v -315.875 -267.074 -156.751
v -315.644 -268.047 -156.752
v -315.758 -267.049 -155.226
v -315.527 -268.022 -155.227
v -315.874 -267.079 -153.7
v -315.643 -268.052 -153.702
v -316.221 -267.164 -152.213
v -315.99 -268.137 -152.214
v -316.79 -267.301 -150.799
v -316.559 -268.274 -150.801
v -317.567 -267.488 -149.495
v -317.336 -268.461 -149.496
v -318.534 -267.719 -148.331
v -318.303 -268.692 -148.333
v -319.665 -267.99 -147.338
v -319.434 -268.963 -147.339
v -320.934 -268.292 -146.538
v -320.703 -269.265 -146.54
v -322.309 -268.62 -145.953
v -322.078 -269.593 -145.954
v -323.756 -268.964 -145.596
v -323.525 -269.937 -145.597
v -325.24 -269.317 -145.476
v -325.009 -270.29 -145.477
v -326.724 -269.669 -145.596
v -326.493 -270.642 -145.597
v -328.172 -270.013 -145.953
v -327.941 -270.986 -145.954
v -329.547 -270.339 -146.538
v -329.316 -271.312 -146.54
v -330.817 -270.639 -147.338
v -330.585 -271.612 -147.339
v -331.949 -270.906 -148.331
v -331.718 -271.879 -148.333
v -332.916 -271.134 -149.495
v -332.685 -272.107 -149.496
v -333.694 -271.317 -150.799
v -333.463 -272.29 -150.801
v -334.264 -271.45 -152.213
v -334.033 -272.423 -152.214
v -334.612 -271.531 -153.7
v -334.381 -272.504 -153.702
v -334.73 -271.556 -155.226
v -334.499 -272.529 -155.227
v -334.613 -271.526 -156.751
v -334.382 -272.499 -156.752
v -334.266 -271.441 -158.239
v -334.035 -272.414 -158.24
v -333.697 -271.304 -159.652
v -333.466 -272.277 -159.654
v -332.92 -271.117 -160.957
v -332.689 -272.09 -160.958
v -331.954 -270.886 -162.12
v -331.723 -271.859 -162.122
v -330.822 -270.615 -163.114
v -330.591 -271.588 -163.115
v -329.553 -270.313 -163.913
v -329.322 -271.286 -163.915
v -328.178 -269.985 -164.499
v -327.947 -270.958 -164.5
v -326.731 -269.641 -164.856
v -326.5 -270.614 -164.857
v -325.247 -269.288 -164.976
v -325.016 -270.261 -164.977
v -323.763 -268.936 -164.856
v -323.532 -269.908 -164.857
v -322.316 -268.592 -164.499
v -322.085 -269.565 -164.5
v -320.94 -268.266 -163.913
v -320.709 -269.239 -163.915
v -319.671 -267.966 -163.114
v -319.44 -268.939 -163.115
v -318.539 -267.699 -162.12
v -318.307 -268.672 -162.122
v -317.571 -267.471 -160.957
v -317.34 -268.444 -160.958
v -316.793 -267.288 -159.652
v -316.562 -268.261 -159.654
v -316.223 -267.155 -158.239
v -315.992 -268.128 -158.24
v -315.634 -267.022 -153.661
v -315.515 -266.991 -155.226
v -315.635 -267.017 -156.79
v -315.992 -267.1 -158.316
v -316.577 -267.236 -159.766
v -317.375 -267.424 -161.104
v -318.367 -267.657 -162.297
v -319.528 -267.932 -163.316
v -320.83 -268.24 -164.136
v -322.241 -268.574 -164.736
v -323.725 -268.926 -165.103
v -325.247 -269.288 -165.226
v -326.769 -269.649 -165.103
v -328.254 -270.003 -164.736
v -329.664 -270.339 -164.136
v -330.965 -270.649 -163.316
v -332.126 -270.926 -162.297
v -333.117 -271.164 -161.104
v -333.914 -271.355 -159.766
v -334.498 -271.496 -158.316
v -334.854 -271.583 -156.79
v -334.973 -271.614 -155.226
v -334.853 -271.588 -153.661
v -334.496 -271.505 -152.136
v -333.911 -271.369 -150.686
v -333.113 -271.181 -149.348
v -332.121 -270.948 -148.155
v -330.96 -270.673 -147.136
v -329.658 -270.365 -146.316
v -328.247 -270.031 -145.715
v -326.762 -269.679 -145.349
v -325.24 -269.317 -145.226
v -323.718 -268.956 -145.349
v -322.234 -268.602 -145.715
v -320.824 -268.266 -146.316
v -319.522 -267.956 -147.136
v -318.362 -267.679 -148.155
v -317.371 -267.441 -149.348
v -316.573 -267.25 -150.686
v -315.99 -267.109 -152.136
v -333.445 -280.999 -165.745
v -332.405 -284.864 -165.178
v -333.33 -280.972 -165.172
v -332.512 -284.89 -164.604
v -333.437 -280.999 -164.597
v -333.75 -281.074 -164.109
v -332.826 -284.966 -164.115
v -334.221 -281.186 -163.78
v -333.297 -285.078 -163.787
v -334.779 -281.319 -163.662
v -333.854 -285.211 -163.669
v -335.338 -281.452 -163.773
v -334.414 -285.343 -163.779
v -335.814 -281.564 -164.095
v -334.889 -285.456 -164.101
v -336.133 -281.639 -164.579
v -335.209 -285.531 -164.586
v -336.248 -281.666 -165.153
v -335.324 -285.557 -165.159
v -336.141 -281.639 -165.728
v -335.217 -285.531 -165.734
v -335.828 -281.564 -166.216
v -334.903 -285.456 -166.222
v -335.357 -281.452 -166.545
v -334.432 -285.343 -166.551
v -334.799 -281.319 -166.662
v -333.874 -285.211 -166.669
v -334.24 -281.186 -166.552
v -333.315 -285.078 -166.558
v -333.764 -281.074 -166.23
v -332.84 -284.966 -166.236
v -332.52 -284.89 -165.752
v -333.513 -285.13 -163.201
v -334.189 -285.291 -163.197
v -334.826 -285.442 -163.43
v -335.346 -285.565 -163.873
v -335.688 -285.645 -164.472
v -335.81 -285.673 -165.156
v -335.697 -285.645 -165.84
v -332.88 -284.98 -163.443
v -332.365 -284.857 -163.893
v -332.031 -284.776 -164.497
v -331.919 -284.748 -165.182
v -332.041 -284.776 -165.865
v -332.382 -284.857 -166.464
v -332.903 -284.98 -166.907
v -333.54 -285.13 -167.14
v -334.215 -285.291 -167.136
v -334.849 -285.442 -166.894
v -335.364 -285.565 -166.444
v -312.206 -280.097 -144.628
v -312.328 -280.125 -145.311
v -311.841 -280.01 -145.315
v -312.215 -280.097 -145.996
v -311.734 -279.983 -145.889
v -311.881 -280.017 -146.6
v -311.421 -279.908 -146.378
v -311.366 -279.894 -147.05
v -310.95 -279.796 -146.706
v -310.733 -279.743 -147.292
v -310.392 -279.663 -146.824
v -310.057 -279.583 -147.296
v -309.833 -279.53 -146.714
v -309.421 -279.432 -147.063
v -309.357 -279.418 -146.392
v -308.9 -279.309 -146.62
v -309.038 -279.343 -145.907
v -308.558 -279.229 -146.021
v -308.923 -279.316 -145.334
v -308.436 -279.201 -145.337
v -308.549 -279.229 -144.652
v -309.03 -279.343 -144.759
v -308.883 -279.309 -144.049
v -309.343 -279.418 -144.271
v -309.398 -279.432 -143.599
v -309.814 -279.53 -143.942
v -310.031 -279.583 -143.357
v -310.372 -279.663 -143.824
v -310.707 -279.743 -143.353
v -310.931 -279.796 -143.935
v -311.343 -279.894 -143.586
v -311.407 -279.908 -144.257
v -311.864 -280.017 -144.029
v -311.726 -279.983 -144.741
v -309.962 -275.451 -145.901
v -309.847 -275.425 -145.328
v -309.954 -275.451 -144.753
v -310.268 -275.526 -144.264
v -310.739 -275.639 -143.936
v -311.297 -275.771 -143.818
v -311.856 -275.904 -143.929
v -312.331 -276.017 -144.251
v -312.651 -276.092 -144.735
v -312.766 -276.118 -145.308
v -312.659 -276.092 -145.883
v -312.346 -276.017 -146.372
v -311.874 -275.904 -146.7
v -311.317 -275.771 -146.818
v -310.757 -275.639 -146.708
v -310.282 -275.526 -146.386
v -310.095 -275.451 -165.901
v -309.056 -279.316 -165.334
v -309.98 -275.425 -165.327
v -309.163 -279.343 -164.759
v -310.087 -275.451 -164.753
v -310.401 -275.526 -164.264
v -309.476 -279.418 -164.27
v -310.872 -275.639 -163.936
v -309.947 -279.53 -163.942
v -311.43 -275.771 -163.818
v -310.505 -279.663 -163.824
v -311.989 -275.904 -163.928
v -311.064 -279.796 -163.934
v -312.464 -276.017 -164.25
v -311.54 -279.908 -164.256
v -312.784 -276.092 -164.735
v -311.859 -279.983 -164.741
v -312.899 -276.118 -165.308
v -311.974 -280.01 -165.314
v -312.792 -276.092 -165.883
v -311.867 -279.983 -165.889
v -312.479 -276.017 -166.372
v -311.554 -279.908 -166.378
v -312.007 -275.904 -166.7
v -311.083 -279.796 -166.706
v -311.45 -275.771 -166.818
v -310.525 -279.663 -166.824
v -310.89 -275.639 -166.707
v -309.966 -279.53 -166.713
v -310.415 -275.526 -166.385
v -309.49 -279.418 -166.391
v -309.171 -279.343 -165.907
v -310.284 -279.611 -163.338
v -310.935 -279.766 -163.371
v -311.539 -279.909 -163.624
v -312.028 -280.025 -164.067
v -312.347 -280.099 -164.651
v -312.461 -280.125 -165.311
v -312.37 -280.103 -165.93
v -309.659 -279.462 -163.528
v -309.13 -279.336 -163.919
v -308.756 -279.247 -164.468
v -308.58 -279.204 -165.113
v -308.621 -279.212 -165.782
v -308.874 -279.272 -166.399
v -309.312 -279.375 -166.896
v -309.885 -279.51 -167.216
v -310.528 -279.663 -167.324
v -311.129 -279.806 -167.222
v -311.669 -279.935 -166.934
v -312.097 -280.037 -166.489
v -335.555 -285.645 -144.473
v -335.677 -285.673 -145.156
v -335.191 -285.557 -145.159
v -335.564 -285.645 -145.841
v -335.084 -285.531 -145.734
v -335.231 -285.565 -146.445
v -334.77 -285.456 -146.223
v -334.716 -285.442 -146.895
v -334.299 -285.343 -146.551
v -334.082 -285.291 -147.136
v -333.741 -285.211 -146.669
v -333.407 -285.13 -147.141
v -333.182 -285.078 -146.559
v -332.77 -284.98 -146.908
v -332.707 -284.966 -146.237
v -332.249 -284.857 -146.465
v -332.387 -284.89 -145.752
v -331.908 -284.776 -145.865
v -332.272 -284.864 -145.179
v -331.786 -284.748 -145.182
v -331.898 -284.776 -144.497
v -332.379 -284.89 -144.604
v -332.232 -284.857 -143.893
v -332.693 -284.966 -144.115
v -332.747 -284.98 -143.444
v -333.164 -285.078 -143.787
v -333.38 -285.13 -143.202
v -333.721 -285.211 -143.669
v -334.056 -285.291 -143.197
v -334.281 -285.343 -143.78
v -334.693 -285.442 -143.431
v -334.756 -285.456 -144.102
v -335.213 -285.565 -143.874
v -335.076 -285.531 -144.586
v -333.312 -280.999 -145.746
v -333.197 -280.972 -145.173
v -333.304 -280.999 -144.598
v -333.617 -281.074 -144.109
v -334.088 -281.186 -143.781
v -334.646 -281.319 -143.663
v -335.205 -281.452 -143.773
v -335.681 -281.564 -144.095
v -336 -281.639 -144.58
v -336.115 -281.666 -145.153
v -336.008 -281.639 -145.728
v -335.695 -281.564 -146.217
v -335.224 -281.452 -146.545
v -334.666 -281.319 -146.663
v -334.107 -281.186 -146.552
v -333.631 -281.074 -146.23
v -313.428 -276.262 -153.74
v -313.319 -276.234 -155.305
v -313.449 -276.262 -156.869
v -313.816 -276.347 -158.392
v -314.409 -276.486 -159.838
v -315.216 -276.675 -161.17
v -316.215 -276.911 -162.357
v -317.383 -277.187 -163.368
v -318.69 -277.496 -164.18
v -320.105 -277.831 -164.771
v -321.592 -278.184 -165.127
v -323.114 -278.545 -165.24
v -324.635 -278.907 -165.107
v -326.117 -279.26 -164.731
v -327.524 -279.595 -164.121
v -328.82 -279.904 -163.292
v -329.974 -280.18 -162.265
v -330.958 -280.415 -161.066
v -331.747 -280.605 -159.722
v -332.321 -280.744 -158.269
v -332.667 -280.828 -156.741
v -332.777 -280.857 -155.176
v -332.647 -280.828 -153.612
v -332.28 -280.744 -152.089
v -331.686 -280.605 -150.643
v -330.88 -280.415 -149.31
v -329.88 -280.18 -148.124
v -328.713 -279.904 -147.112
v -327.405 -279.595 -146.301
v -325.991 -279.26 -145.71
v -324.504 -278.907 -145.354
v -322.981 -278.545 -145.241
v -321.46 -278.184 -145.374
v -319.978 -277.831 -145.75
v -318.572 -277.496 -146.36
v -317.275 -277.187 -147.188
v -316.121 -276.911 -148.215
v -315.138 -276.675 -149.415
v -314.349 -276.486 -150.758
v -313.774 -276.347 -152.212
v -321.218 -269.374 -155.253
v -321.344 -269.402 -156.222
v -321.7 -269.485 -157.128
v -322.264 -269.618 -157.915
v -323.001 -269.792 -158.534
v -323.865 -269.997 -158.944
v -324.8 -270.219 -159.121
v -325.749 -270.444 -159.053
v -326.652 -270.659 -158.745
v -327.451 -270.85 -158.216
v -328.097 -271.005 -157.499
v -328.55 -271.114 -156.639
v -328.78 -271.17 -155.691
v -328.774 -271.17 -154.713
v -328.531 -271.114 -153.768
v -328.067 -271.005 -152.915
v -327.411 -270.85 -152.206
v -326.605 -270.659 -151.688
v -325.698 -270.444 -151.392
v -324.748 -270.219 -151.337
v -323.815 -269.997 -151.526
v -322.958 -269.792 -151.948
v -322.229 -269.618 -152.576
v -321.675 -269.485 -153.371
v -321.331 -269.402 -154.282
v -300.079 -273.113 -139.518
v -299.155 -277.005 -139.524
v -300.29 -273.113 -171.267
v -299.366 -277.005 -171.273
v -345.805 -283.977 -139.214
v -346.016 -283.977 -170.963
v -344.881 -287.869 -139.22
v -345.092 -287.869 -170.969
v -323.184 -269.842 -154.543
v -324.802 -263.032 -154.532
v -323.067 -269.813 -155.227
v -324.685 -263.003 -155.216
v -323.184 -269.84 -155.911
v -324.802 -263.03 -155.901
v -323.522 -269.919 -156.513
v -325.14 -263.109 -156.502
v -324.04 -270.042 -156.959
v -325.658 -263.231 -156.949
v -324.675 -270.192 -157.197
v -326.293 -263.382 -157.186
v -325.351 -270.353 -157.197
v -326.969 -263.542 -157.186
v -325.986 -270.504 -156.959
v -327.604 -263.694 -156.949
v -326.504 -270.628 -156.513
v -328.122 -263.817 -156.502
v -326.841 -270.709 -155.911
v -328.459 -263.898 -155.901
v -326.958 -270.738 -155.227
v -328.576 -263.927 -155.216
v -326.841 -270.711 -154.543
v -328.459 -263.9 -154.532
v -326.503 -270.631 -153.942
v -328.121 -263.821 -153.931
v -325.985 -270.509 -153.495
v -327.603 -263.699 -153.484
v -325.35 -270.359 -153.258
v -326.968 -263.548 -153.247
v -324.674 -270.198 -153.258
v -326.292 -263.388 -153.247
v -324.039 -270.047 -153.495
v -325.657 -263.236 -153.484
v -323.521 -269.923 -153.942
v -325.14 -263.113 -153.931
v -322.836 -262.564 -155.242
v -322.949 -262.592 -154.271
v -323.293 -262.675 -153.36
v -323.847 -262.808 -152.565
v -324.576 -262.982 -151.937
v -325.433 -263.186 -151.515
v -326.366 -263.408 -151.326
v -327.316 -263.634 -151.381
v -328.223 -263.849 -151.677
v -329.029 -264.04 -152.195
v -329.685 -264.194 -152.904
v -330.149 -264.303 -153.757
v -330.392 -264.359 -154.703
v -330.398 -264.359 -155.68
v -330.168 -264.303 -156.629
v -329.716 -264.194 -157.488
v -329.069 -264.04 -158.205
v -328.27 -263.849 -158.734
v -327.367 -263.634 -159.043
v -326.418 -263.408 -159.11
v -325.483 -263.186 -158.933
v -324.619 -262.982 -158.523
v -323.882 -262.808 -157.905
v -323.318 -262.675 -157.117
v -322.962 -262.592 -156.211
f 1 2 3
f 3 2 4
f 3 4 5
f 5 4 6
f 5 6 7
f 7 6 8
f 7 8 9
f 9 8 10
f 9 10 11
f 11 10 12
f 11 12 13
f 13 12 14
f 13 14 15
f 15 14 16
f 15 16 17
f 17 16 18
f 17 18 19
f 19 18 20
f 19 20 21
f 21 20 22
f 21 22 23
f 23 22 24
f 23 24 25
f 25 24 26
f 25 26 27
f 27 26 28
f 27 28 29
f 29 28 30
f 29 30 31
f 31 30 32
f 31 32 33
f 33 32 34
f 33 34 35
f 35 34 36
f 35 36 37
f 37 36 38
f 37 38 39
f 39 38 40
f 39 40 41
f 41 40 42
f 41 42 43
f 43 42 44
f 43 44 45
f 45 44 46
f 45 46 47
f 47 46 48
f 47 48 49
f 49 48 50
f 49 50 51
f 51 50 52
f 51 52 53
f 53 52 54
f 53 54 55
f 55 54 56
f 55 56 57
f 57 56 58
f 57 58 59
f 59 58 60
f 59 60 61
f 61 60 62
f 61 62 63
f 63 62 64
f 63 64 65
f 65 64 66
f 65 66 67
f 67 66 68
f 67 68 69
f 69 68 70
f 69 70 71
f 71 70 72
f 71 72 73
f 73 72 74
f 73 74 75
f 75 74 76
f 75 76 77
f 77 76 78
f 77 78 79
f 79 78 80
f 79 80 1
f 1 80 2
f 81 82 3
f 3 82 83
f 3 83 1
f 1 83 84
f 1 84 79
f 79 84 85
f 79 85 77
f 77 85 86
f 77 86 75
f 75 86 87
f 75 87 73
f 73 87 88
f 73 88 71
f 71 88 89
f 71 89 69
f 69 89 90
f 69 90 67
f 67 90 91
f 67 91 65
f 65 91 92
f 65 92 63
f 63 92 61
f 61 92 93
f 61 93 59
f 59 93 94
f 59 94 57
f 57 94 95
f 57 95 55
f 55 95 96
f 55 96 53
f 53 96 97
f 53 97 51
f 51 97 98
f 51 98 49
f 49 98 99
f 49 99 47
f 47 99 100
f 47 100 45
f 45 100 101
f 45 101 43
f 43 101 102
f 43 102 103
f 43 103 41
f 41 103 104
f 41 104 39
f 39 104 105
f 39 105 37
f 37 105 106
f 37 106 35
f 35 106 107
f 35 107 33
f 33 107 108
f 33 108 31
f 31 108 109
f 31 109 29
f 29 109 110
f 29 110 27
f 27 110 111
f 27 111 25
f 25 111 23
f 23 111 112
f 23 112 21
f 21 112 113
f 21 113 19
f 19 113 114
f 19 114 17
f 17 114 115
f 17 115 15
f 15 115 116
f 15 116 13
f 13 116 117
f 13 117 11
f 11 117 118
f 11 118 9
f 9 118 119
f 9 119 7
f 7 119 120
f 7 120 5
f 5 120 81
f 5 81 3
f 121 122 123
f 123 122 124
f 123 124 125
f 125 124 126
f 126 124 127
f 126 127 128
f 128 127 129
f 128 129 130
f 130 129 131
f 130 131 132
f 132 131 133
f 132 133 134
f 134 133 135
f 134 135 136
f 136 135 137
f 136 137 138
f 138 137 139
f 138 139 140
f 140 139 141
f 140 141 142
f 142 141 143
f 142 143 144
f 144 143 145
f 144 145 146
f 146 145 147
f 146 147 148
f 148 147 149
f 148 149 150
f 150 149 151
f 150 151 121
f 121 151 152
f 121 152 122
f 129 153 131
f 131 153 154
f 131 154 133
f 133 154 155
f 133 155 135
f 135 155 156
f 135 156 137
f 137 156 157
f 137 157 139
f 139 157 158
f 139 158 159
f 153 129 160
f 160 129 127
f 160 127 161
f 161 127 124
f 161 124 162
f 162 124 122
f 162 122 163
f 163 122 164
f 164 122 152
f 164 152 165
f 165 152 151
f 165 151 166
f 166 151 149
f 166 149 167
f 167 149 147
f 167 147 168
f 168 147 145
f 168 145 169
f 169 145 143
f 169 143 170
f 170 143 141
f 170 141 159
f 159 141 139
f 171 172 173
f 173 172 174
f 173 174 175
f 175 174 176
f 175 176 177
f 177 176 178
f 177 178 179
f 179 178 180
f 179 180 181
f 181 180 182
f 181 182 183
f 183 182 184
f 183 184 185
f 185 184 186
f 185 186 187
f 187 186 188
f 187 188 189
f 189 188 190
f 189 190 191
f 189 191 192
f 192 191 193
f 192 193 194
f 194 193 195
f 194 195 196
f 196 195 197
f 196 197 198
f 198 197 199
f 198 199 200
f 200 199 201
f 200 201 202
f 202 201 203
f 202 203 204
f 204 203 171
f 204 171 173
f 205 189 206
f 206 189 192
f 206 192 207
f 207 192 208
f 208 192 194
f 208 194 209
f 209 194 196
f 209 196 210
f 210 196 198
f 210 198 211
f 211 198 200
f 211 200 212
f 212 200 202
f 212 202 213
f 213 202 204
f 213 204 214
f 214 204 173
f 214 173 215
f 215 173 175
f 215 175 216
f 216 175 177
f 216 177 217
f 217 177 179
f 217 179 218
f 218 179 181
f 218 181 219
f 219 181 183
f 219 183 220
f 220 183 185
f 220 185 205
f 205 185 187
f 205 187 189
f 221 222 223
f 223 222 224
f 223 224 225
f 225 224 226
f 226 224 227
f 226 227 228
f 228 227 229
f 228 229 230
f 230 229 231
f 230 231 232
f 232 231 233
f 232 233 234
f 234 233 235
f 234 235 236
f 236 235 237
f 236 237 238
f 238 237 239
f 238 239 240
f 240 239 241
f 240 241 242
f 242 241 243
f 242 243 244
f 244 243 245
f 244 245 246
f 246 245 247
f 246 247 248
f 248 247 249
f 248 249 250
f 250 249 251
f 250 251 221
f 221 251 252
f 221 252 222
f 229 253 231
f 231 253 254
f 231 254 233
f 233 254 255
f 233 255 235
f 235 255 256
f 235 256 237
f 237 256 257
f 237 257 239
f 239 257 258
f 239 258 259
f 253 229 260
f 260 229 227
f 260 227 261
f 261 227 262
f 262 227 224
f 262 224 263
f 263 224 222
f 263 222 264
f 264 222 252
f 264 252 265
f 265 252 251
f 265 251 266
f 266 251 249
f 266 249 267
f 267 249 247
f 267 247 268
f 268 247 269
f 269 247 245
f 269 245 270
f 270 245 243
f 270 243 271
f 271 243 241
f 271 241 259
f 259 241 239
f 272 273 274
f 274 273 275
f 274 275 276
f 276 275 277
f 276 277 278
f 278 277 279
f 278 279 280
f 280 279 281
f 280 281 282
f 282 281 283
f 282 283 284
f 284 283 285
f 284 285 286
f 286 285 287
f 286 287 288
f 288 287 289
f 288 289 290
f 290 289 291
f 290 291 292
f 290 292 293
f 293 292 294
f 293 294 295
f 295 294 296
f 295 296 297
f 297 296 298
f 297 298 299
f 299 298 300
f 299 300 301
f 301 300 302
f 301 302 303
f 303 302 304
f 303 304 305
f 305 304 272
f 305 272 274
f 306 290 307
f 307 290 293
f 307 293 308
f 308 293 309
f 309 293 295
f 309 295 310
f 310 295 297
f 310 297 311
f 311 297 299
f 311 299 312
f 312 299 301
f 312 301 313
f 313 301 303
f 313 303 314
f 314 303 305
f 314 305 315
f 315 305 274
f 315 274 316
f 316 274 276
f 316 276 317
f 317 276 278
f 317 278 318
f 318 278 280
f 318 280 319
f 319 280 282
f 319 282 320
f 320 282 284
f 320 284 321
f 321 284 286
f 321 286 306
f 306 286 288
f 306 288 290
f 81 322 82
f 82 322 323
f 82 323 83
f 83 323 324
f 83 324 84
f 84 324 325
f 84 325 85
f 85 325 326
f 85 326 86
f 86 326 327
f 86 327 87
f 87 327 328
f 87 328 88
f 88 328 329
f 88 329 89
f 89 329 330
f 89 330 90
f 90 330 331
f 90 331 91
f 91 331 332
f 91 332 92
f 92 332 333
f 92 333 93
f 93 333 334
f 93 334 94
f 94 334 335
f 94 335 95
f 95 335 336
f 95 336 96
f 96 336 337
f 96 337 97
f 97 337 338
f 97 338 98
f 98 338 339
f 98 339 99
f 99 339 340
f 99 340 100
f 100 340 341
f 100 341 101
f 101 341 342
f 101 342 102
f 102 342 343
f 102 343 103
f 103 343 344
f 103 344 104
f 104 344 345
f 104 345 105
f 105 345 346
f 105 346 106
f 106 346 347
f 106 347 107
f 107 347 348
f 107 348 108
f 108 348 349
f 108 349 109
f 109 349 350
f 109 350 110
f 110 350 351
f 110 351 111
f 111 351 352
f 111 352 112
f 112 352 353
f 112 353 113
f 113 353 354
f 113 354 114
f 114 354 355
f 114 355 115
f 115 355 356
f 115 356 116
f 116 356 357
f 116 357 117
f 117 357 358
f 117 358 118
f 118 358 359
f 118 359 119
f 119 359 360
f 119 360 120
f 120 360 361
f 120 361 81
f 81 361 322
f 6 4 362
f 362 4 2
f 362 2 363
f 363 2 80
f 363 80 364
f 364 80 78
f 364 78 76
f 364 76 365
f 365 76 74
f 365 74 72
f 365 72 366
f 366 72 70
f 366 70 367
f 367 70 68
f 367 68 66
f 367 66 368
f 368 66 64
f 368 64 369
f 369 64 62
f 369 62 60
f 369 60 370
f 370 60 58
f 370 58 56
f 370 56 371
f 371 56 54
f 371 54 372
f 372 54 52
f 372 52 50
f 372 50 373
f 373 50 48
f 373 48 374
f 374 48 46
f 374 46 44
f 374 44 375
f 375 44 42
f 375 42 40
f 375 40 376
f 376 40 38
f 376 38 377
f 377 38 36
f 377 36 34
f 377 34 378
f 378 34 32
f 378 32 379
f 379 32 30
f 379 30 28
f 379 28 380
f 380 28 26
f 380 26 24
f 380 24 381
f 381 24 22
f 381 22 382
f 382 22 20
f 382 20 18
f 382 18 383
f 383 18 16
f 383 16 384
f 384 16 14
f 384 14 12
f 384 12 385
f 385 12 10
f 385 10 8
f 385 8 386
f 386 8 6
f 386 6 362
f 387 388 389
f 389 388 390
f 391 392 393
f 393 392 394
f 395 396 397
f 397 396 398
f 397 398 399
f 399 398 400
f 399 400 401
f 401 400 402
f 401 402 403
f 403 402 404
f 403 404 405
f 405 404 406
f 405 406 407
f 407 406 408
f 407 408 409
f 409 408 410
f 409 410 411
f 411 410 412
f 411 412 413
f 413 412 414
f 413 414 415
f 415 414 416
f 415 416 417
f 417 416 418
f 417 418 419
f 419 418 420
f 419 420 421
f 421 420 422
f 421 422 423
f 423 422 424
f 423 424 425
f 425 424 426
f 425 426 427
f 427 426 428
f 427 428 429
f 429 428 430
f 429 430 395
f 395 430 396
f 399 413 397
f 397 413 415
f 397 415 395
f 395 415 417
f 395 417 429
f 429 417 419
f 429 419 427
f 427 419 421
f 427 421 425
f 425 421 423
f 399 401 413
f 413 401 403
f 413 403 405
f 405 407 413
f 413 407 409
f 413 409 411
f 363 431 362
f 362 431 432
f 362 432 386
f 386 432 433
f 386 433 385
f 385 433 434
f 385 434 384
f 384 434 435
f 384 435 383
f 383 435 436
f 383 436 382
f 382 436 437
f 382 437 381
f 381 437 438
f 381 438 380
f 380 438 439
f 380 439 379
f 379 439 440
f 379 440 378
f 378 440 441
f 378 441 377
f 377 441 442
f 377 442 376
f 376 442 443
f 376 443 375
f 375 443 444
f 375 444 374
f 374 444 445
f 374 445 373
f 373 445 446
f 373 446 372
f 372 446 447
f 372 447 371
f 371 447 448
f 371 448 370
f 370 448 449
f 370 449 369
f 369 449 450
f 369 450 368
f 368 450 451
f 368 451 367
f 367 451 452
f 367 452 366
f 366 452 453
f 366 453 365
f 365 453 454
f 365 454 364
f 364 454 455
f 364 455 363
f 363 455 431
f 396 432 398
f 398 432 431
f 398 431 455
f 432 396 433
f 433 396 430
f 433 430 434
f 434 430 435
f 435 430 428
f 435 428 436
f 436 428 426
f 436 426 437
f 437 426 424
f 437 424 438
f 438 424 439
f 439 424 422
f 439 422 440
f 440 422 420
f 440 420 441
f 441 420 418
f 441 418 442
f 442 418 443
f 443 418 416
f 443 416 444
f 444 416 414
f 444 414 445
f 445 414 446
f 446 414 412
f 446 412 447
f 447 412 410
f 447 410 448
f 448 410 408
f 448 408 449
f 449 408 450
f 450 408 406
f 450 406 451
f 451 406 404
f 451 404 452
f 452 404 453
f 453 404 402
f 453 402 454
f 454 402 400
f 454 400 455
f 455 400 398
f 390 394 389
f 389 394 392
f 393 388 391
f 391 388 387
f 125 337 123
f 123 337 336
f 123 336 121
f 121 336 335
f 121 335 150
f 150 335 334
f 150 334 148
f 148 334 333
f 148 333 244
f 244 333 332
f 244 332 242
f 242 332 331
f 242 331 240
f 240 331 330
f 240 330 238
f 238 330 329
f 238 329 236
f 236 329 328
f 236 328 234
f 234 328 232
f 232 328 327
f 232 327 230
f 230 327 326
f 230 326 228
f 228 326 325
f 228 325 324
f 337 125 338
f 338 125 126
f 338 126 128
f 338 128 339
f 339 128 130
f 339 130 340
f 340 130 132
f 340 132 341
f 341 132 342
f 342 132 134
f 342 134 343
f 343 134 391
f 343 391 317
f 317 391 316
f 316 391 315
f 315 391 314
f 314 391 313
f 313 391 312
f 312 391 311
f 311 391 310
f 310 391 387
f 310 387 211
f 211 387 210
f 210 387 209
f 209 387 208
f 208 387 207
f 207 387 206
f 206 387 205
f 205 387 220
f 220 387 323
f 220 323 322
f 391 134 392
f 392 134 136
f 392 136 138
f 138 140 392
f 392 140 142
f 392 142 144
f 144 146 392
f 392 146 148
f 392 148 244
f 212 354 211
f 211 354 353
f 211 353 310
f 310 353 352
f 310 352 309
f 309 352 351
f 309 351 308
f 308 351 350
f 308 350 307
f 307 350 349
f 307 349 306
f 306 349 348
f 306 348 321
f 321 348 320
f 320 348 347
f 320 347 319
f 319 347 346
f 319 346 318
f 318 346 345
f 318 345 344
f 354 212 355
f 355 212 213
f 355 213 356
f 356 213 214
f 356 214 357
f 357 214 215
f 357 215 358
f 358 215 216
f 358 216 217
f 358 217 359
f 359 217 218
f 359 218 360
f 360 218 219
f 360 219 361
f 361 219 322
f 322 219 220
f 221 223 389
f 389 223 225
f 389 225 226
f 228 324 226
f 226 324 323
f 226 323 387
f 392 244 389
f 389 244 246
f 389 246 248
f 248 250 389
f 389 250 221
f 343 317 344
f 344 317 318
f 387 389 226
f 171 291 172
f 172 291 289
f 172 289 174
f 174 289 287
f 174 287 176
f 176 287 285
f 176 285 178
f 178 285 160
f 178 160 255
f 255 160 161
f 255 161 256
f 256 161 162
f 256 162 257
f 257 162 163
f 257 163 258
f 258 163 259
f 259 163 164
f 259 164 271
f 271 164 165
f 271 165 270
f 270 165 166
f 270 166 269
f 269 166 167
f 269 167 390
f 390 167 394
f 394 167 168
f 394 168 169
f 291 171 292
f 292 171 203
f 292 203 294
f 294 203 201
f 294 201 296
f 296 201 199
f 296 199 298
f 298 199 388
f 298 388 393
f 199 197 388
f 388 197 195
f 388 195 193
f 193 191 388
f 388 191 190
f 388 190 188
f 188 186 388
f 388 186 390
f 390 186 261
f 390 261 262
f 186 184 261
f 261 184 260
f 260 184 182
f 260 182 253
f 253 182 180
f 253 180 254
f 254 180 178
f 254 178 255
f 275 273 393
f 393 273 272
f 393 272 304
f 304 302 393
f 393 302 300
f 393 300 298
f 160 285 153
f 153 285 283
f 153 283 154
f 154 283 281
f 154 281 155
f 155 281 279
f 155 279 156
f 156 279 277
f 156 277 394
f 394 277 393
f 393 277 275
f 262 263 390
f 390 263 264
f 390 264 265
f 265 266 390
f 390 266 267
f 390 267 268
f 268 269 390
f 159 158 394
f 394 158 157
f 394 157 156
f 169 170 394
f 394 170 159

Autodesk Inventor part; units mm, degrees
ref_plane "РабПлоскость1" through (-284.2189, -273.5664, -69.8717) normal (-0.2311474, 0.9729175, 0.0015373) x (-0.972896, -0.2311526, 0.0064703)
sketch "Эскиз1" plane through (-284.2189, -273.5664, -69.8717) normal (-0.2311474, 0.9729175, 0.0015373) x (-0.972896, -0.2311526, 0.0064703)
  line L0 (22.5, -101.5) -> (54.25, -101.5)
  line L1 (54.25, -101.5) -> (54.25, -69.75)
  line L2 (54.25, -69.75) -> (22.5, -69.75)
  line L3 (22.5, -69.75) -> (22.5, -101.5)
  circle A0 centre (38.375, -85.625) radius 15.75 projected
  line L4 (38.375, -101.375) -> (38.375, -107.7067)
  point P0 (-339.2989, 71.7603)
  point P1 (22.5, -91.5)
  point P2 (38.375, -101.375)
  point P3 (38.375, -102.625)
  dimension "d0" = 31.75
  dimension "d1" = 31.75
extrude "Выдавливание1" add sketch "Эскиз1" along normal blind 4 contours L3 L2 L1 L0 | A0
sketch "Эскиз2" plane through (-285.1435, -269.6747, -69.8655) normal (-0.2311474, 0.9729175, 0.0015373) x (0.972896, 0.2311526, -0.0064703)
  line L0 (-54.25, 101.5) -> (-54.25, 69.75) projected
  line L1 (-54.25, 85.625) -> (-22.5, 85.625)
  line L2 (-22.5, 69.75) -> (-22.5, 101.5) projected
  line L3 (-54.25, 69.75) -> (-22.5, 69.75) projected
  line L4 (-50.375, 85.625) -> (-50.375, 101.5)
  line L5 (-36.5891, 93.625) -> (-22.5, 93.625)
  line L6 (-36.5891, 93.625) -> (-54.25, 93.625)
  line L7 (-50.375, 85.625) -> (-50.375, 68.9602)
  line L8 (-50.375, 75.625) -> (-22.5, 75.625)
  line L9 (-26.375, 103.5) -> (-26.375, 69.75)
  circle A0 centre (-50.375, 75.625) radius 2
  circle A1 centre (-26.375, 75.625) radius 2
  line L10 (-38.375, 72.7459) -> (-38.375, 103.5)
  line L11 (-38.375, 72.7459) -> (-38.375, 69.75)
  point P0 (339.2989, -71.7603)
  point P1 (-49.5, 101.5)
  point P2 (-38.375, 101.5)
  point P3 (-22.5, 85.625)
  point P4 (-54.25, 101.5)
  dimension "d5" = 8
  dimension "d6" = 12
  dimension "d7" = 10
  dimension "d8" = 4
  dimension "d9" = 4
  dimension "d16" = 12
sketch "Эскиз3" plane through (-285.1435, -269.6747, -69.8655) normal (-0.2311474, 0.9729175, 0.0015373) x (0.972896, 0.2311526, -0.0064703)
  circle A0 centre (-50.375, 95.625) radius 2
  circle A1 centre (-26.375, 95.625) radius 2
  line L0 (-54.25, 69.75) -> (-22.5, 69.75) projected
  line L1 (-38.375, 69.75) -> (-38.375, 101.5)
  line L2 (-38.375, 101.5) -> (-54.25, 85.625)
  line L3 (-54.25, 85.625) -> (-22.5, 85.625)
  point P0 (339.2989, -71.7603)
  point P1 (-50.375, 93.5625)
  dimension "d10" = 4
  dimension "d11" = 4
  dimension "d17" = 7.9375
  dimension "d18" = 15.875
  dimension "d19" = 10
  dimension "d20" = 10
  dimension "d21" = 12
extrude "Выдавливание2" cut sketch "Эскиз3" against normal blind 10 contours A0 | A1
extrude "Выдавливание3" cut sketch "Эскиз2" against normal blind 10 contours A0 L8 L7 | L7 A0 | L7 L8 A0 | A1 L8 L9 | L9 L8 A1 | L8 L9 A1 | L9 L8 A1
sketch "Эскиз4" plane through (-285.1435, -269.6747, -69.8655) normal (-0.2311474, 0.9729175, 0.0015373) x (0.972896, 0.2311526, -0.0064703)
  line L0 (-54.25, 101.5) -> (-54.25, 69.75) projected
  line L1 (-54.25, 85.625) -> (-22.5, 85.625)
  line L2 (-22.5, 69.75) -> (-22.5, 101.5) projected
  line L3 (-38.375, 101.5) -> (-38.375, 69.75)
  line L4 (-54.25, 69.75) -> (-22.5, 69.75) projected
  circle A0 centre (-38.375, 85.625) radius 3.9
  point P0 (339.2989, -71.7603)
  dimension "d22" = 7.8
extrude "Выдавливание4" add sketch "Эскиз4" along normal blind 15.5 contours A0 L3 L1 | L1 L3 A0 | L3 A0 L1 | L1 A0 L3
sketch "Эскиз5" plane through (-326.6306, -263.465, -155.2165) normal (-0.2311474, 0.9729175, 0.0015373) x (0.9729187, 0.2311477, 0)
  circle A0 centre (0, 0) radius 2
  point P0 (378.6843, -154.9383)
  dimension "d25" = 4
extrude "Выдавливание5" cut sketch "Эскиз5" against normal blind 7
thread "Резьба1" size "M4x0.7" class "6H" standard "ANSI Metric M Profile" full length
sketch "Эскиз6" plane through (-337.6735, -286.1064, -171.0184) normal (-0.972896, -0.2311526, 0.0064703) x (0.0066504, 0, 0.9999779)
  line L0 (0, 4) -> (31.75, 4) projected
  line L1 (31.75, 4) -> (0, 4)
  line L2 (0, 4) -> (0, 0)
  line L3 (0, 0) -> (31.75, 0)
  line L4 (31.75, 0) -> (31.75, 4)
  point P0 (173.2603, 200.5685)
  point P1 (0, 4)
ref_plane "РабПлоскость2" through (-345.4521, -286.2315, -166.64) normal (0.972896, 0.2311526, -0.0064703) x (-0.2311474, 0.9729175, 0.0015373)
extrude "Выдавливание6" add sketch "Эскиз6" along normal up to surface (7.625 mm away)
sketch "Эскиз7" plane through (-306.5729, -278.7673, -139.4745) normal (0.972896, 0.2311526, -0.0064703) x (-0.0066504, 0, -0.9999779)
  line L0 (0, 0) -> (31.75, 0) projected
  line L1 (0, 4) -> (31.75, 4) projected
  line L2 (31.75, 0) -> (0, 0)
  line L3 (0, 0) -> (0, 4)
  line L4 (0, 4) -> (31.75, 4)
  line L5 (31.75, 4) -> (31.75, 0)
  point P0 (-141.5103, 200.5685)
  point P1 (31.75, 4)
ref_plane "РабПлоскость3" through (-299.726, -275.3674, -166.9441) normal (-0.972896, -0.2311526, 0.0064703) x (0.0066504, 0, 0.9999779)
extrude "Выдавливание7" add sketch "Эскиз7" along normal up to surface (7.625 mm away)
sketch "Эскиз8" plane through (-285.1435, -269.6747, -69.8655) normal (-0.2311474, 0.9729175, 0.0015373) x (0.972896, 0.2311526, -0.0064703)
  circle A0 centre (-38.375, 85.625) radius 3.9 projected
  circle A1 centre (-38.375, 85.625) radius 10
  point P0 (339.2989, -71.7603)
  dimension "d34" = 20
extrude "Выдавливание8" add sketch "Эскиз8" along normal blind 8.5
sketch "Эскиз9" plane through (-285.1435, -269.6747, -69.8655) normal (-0.2311474, 0.9729175, 0.0015373) x (0.972896, 0.2311526, -0.0064703)
  circle A0 centre (-26.375, 75.625) radius 2 projected
  circle A1 centre (-26.375, 95.625) radius 2 projected
  circle A2 centre (-50.375, 75.625) radius 2 projected
  circle A3 centre (-50.375, 95.625) radius 2 projected
  circle A4 centre (-26.375, 75.625) radius 1.5
  circle A5 centre (-26.375, 95.625) radius 1.5
  circle A6 centre (-50.375, 95.625) radius 1.5
  circle A7 centre (-50.375, 75.625) radius 1.5
  point P0 (339.2989, -71.7603)
  dimension "d37" = 3
  dimension "d38" = 3
  dimension "d39" = 3
  dimension "d40" = 3
ref_plane "РабПлоскость4" through (-375.5638, -295.1043, -173.6384) normal (-0.2311474, 0.9729175, 0.0015373) x (0.0066504, 0, 0.9999779)
extrude "Выдавливание9" add sketch "Эскиз9" against normal up to surface (4 mm away)
sketch "Эскиз10" plane through (-325.0126, -270.2754, -155.2273) normal (-0.2311474, 0.9729175, 0.0015373) x (0.9729187, 0.2311477, 0)
  circle A0 centre (0, 0) radius 9.75
  circle A1 centre (0, 0) radius 10
  point P0 (378.6843, -154.9383)
  dimension "d43" = 20
  dimension "d44" = 19.5
extrude "Выдавливание10" add sketch "Эскиз10" along normal blind 1
properties part number "ступица"
